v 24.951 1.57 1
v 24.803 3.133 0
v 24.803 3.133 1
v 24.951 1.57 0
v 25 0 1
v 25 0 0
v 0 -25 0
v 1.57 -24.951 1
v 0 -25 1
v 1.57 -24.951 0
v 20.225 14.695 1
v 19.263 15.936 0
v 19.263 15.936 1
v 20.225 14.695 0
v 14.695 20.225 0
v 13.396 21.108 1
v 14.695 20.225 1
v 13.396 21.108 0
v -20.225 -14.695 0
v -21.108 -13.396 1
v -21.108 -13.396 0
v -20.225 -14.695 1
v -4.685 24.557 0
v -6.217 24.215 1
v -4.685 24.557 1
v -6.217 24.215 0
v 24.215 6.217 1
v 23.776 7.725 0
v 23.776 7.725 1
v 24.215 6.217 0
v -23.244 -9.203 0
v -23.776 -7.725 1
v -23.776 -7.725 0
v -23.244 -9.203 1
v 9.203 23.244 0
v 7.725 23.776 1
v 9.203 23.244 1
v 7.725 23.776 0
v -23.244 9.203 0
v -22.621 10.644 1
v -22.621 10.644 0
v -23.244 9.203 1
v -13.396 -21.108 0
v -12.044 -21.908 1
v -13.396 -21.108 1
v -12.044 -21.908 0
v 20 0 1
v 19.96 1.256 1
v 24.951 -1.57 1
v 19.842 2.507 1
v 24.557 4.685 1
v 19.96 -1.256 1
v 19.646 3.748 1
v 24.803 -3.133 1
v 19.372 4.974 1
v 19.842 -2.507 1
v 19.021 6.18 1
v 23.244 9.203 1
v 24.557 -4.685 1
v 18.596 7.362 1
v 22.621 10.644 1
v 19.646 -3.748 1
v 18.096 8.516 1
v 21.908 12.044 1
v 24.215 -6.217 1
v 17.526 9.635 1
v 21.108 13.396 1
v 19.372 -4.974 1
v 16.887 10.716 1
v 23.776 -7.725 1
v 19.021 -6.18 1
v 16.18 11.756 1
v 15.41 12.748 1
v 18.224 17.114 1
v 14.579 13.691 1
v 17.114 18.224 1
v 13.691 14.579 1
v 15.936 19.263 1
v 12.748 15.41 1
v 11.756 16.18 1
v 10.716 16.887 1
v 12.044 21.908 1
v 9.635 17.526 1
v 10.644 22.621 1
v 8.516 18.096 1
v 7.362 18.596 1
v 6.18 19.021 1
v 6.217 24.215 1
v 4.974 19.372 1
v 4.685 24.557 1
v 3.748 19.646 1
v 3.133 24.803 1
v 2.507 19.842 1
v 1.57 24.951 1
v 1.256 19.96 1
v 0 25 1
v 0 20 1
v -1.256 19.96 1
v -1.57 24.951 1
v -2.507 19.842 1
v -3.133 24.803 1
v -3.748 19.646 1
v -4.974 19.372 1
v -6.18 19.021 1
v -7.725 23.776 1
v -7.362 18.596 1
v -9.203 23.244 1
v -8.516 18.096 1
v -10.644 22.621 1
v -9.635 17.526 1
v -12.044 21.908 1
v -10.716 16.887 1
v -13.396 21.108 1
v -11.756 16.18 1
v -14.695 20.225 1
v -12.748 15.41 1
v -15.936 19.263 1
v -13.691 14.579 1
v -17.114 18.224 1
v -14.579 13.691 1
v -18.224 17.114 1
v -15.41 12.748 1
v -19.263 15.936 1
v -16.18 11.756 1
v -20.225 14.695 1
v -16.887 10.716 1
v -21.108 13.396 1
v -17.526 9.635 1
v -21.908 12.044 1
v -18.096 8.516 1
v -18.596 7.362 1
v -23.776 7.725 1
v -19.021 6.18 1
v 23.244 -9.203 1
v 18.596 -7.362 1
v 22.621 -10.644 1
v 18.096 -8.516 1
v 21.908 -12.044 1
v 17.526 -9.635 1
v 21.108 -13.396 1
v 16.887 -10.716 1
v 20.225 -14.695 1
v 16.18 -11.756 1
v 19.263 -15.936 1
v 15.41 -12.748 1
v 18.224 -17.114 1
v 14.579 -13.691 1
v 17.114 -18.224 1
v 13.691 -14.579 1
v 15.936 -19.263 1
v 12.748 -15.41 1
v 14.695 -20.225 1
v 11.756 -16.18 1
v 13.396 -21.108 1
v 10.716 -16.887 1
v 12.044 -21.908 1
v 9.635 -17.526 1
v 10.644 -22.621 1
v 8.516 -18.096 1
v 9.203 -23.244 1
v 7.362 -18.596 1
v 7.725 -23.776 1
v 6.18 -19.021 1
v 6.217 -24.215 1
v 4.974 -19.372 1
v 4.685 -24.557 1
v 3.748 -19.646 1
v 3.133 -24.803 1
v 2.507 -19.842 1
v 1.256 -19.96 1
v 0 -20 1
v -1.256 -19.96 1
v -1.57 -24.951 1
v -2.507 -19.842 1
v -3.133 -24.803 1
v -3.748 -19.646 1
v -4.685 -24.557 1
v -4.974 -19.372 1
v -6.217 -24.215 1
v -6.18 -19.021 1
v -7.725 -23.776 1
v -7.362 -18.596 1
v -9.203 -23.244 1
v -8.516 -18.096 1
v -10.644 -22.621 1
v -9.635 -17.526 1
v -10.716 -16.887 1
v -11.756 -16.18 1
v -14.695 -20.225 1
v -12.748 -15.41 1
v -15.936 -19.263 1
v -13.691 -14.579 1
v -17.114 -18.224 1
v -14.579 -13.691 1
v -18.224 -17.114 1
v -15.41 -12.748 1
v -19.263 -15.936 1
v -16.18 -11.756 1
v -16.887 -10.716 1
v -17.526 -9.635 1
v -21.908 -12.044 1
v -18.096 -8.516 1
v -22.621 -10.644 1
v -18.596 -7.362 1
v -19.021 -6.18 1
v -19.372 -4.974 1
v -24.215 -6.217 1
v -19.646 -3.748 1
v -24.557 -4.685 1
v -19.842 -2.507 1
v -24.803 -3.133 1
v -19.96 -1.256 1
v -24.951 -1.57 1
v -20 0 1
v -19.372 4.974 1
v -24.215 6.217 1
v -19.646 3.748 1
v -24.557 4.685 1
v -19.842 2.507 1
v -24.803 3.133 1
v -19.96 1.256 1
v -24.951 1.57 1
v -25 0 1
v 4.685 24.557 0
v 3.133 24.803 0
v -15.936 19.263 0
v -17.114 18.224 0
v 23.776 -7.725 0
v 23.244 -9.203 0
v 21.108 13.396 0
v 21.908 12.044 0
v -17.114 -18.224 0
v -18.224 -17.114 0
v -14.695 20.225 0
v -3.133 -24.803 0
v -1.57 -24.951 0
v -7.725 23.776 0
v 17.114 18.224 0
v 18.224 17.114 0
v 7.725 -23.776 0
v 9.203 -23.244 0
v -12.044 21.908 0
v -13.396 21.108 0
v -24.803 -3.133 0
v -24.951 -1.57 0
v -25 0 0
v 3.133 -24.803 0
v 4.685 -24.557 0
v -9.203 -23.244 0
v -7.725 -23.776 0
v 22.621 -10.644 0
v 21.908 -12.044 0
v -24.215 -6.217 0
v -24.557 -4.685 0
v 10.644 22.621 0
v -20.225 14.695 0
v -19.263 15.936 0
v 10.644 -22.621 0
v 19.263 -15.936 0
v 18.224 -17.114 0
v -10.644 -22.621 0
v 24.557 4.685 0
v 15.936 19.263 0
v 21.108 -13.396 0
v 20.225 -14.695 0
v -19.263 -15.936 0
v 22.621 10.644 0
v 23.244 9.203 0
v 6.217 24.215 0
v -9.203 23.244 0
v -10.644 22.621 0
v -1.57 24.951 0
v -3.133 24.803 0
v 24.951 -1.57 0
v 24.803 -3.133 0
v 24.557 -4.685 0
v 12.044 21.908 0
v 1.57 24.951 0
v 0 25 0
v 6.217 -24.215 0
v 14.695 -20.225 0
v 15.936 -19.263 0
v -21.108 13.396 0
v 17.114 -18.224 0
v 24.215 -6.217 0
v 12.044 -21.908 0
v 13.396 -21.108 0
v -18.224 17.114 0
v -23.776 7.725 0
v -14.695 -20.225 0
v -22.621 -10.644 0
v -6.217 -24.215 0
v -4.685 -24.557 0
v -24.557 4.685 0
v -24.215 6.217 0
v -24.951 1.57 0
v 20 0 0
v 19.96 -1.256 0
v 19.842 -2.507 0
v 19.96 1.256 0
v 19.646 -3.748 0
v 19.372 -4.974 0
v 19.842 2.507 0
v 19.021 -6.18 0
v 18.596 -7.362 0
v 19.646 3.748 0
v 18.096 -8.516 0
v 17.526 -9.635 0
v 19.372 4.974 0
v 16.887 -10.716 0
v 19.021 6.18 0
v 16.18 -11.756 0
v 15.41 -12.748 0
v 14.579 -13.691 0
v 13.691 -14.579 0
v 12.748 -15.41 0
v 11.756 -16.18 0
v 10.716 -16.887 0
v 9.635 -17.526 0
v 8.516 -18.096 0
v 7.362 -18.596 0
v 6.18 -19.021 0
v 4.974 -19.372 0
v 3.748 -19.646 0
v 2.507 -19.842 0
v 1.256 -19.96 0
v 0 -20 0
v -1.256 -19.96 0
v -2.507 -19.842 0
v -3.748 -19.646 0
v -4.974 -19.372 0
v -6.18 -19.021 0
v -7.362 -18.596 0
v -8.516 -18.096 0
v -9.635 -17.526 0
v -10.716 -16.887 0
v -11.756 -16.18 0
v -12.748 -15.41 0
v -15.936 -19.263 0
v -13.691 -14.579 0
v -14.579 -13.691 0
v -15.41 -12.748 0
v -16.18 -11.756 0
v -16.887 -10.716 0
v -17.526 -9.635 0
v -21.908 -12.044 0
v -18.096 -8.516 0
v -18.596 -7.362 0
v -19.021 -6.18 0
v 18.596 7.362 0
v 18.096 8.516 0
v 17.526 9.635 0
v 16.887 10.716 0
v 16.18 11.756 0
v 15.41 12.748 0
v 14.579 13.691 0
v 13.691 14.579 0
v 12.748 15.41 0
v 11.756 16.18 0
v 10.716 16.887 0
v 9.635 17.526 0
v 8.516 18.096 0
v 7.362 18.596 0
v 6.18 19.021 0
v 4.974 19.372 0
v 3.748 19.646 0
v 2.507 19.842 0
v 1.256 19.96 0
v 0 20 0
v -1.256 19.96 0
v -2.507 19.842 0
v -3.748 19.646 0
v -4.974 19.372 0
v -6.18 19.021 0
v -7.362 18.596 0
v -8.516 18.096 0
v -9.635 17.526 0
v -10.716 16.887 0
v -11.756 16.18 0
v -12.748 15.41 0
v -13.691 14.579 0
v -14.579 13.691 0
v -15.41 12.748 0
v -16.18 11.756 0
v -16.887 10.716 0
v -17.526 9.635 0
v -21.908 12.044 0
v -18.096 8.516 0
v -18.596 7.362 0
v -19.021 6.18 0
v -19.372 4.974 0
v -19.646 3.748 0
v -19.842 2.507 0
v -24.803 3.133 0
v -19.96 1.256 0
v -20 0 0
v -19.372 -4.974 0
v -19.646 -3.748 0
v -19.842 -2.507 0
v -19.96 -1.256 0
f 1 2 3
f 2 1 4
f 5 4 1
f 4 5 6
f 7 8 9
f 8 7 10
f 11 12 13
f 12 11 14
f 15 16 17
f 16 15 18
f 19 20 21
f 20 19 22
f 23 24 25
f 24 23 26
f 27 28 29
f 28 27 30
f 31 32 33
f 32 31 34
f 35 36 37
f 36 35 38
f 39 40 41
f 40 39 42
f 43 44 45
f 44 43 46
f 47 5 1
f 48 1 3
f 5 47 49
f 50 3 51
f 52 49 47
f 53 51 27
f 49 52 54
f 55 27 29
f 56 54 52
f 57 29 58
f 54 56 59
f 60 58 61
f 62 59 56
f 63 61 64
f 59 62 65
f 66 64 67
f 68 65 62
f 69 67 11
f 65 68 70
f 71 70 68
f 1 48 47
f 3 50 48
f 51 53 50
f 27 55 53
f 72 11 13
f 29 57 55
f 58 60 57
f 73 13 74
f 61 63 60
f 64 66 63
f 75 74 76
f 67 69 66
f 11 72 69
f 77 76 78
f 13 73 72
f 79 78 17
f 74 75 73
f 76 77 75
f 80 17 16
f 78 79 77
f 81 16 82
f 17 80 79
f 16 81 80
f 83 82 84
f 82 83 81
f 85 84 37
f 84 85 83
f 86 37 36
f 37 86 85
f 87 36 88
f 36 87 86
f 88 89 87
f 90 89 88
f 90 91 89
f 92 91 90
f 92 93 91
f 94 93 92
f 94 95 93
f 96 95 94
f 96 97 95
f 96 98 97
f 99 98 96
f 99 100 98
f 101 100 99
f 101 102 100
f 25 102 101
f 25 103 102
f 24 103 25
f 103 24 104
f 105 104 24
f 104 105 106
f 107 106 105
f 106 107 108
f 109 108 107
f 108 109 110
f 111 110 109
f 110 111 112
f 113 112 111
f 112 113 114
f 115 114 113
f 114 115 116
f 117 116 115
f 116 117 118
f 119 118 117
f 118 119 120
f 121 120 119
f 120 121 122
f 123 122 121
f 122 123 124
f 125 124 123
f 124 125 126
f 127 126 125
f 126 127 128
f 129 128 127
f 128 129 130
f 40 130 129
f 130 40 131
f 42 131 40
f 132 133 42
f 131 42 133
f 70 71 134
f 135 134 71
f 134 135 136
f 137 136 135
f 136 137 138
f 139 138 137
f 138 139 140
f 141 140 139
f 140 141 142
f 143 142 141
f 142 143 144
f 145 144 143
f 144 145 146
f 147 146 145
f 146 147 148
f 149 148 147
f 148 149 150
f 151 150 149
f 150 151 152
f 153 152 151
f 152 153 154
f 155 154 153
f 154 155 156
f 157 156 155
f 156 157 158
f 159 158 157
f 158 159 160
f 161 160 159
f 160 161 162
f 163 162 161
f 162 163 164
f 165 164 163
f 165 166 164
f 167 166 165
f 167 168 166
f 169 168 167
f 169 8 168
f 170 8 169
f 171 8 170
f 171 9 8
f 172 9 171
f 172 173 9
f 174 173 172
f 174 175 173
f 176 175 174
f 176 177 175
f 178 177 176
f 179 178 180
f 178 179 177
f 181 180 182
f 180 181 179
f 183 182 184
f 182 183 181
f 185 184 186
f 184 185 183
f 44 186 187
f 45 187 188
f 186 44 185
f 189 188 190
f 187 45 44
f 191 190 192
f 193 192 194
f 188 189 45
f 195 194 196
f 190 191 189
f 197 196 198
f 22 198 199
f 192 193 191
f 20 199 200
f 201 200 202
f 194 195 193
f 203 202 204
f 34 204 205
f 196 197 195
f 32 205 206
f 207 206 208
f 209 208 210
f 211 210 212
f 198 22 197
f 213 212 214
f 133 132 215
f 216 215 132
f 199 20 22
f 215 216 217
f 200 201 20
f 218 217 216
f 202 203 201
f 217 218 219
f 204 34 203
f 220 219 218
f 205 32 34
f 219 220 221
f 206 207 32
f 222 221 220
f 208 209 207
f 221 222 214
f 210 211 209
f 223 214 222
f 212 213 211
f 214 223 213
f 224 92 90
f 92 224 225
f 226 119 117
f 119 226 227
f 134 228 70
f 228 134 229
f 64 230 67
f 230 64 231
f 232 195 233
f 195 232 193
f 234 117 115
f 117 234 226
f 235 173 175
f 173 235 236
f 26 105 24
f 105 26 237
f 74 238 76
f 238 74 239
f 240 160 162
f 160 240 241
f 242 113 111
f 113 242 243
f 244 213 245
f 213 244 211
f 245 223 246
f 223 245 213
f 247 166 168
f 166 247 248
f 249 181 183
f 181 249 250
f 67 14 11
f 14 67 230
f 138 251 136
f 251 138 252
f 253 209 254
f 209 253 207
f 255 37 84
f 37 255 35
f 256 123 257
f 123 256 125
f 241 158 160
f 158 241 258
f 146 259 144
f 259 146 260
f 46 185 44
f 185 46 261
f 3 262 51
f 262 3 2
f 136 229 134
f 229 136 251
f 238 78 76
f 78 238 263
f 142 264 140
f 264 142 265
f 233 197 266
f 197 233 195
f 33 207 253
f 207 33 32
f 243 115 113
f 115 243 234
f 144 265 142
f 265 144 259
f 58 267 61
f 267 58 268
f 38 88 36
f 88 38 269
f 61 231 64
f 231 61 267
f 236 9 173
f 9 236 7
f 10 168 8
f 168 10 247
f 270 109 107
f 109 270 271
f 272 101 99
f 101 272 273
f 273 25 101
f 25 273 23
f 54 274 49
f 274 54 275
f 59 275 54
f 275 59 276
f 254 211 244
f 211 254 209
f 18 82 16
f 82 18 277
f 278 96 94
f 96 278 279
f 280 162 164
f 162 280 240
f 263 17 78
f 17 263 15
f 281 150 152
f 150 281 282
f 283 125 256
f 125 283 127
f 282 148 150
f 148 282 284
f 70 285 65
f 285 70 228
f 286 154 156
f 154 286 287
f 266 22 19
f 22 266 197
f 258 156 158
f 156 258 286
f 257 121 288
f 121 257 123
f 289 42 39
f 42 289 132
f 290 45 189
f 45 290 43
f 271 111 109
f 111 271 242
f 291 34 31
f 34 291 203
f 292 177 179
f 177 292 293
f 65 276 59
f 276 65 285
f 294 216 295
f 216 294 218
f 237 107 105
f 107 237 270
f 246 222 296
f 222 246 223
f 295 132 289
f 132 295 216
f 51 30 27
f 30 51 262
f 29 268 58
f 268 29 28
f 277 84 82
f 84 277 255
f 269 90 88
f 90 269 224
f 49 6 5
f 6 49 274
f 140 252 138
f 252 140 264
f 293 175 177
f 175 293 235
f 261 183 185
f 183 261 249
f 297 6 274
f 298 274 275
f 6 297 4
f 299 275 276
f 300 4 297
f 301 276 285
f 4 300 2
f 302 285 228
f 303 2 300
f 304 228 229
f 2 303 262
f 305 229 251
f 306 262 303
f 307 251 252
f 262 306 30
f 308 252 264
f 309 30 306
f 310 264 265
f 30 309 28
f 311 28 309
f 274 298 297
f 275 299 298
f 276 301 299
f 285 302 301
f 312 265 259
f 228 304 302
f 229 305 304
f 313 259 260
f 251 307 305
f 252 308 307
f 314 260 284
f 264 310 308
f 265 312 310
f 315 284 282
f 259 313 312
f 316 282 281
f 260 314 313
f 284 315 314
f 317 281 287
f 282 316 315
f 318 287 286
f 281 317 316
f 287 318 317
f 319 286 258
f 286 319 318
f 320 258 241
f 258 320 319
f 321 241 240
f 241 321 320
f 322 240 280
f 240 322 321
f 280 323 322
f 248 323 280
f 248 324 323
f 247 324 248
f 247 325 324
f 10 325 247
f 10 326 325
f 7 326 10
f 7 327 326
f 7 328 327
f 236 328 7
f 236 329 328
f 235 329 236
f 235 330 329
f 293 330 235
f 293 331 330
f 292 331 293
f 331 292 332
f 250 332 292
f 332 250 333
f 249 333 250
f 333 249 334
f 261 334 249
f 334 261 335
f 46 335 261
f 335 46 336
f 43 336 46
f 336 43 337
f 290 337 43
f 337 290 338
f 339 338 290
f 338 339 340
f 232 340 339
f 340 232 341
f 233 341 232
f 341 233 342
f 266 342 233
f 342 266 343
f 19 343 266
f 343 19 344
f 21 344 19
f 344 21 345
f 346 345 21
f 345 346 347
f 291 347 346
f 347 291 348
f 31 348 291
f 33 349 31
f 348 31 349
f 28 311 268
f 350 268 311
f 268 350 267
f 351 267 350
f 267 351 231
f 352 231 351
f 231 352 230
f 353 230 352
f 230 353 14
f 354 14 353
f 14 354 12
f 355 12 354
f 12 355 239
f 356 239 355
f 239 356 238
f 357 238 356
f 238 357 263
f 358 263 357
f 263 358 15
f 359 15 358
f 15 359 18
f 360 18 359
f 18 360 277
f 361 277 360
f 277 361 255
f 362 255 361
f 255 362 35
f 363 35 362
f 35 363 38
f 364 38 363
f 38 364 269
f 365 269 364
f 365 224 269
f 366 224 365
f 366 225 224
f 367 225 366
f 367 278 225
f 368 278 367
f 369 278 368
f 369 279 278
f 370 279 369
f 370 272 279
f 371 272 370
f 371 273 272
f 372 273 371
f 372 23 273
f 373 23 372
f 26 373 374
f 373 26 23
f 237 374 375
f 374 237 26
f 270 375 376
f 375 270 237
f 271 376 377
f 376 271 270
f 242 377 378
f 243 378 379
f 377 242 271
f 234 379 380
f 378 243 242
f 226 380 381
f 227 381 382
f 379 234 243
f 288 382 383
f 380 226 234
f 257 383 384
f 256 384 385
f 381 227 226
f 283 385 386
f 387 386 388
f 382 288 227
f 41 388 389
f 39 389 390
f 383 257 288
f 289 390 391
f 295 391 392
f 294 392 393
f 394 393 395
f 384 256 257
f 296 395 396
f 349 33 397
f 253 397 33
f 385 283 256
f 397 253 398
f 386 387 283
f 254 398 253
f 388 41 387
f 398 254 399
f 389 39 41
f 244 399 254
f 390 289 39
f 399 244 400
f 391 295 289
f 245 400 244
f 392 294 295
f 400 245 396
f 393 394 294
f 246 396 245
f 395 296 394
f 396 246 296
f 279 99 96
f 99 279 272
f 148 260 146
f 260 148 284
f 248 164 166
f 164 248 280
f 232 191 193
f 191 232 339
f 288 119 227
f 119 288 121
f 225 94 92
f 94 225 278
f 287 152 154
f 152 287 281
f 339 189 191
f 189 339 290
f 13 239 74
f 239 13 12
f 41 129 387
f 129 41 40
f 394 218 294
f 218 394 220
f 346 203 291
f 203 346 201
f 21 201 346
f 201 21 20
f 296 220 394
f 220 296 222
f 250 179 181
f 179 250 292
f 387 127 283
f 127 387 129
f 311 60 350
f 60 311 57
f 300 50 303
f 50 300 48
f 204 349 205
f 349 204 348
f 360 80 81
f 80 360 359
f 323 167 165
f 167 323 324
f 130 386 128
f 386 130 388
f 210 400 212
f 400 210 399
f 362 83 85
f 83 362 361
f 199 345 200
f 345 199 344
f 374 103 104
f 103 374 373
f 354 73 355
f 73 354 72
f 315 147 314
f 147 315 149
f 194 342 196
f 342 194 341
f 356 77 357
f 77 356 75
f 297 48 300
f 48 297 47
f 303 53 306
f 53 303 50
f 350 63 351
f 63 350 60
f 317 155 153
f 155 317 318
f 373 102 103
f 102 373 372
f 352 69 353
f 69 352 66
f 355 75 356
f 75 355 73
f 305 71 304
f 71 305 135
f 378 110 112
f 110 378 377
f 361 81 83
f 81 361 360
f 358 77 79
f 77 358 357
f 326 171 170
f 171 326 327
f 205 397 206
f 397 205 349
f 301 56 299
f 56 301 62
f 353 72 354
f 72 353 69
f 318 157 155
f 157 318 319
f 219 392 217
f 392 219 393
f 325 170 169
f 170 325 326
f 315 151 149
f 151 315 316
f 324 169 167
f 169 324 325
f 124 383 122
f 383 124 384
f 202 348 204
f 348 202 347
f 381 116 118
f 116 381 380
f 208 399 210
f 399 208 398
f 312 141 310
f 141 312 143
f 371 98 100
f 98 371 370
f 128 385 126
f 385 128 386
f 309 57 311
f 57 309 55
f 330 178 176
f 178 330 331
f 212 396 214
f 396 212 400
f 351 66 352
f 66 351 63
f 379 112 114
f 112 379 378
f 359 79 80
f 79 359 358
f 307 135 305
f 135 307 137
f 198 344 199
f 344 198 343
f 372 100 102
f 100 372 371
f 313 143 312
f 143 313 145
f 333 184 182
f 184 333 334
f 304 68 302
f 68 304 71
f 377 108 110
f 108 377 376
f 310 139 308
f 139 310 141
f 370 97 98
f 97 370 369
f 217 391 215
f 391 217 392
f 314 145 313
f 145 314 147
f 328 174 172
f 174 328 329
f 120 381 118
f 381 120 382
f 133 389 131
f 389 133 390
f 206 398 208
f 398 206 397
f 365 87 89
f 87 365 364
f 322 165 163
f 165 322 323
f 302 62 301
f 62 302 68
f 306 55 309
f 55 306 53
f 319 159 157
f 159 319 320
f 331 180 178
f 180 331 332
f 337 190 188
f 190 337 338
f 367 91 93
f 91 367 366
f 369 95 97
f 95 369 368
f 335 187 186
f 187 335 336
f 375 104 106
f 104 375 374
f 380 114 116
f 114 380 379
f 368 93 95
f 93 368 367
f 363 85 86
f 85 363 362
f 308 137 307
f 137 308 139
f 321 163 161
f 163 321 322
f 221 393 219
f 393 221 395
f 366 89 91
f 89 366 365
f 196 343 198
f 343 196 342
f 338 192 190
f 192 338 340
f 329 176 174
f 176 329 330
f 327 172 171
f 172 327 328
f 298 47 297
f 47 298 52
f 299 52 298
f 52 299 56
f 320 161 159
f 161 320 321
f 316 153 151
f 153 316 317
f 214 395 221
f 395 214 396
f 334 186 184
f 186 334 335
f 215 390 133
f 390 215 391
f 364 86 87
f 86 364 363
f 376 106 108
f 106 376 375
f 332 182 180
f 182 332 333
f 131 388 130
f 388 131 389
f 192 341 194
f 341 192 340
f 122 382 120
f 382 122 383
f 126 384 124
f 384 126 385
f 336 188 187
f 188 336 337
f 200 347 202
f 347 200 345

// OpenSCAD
// Spacer Ring Parameters
spacer_ring_outer_diameter = 50; // Outer diameter of the ring
spacer_ring_inner_diameter = 40; // Inner diameter of the ring
spacer_ring_thickness = 1; // Adjusted thickness of the ring to match the original model

// Spacer Ring Component
module spacer_ring() {
    difference() {
        // Outer cylinder
        cylinder(d=spacer_ring_outer_diameter, h=spacer_ring_thickness, $fn=100);
        // Inner cylinder (hole)
        translate([0, 0, -1]) // Ensure the hole is centered
        cylinder(d=spacer_ring_inner_diameter, h=spacer_ring_thickness + 2, $fn=100);
    }
}

// Render Spacer Ring
spacer_ring();
